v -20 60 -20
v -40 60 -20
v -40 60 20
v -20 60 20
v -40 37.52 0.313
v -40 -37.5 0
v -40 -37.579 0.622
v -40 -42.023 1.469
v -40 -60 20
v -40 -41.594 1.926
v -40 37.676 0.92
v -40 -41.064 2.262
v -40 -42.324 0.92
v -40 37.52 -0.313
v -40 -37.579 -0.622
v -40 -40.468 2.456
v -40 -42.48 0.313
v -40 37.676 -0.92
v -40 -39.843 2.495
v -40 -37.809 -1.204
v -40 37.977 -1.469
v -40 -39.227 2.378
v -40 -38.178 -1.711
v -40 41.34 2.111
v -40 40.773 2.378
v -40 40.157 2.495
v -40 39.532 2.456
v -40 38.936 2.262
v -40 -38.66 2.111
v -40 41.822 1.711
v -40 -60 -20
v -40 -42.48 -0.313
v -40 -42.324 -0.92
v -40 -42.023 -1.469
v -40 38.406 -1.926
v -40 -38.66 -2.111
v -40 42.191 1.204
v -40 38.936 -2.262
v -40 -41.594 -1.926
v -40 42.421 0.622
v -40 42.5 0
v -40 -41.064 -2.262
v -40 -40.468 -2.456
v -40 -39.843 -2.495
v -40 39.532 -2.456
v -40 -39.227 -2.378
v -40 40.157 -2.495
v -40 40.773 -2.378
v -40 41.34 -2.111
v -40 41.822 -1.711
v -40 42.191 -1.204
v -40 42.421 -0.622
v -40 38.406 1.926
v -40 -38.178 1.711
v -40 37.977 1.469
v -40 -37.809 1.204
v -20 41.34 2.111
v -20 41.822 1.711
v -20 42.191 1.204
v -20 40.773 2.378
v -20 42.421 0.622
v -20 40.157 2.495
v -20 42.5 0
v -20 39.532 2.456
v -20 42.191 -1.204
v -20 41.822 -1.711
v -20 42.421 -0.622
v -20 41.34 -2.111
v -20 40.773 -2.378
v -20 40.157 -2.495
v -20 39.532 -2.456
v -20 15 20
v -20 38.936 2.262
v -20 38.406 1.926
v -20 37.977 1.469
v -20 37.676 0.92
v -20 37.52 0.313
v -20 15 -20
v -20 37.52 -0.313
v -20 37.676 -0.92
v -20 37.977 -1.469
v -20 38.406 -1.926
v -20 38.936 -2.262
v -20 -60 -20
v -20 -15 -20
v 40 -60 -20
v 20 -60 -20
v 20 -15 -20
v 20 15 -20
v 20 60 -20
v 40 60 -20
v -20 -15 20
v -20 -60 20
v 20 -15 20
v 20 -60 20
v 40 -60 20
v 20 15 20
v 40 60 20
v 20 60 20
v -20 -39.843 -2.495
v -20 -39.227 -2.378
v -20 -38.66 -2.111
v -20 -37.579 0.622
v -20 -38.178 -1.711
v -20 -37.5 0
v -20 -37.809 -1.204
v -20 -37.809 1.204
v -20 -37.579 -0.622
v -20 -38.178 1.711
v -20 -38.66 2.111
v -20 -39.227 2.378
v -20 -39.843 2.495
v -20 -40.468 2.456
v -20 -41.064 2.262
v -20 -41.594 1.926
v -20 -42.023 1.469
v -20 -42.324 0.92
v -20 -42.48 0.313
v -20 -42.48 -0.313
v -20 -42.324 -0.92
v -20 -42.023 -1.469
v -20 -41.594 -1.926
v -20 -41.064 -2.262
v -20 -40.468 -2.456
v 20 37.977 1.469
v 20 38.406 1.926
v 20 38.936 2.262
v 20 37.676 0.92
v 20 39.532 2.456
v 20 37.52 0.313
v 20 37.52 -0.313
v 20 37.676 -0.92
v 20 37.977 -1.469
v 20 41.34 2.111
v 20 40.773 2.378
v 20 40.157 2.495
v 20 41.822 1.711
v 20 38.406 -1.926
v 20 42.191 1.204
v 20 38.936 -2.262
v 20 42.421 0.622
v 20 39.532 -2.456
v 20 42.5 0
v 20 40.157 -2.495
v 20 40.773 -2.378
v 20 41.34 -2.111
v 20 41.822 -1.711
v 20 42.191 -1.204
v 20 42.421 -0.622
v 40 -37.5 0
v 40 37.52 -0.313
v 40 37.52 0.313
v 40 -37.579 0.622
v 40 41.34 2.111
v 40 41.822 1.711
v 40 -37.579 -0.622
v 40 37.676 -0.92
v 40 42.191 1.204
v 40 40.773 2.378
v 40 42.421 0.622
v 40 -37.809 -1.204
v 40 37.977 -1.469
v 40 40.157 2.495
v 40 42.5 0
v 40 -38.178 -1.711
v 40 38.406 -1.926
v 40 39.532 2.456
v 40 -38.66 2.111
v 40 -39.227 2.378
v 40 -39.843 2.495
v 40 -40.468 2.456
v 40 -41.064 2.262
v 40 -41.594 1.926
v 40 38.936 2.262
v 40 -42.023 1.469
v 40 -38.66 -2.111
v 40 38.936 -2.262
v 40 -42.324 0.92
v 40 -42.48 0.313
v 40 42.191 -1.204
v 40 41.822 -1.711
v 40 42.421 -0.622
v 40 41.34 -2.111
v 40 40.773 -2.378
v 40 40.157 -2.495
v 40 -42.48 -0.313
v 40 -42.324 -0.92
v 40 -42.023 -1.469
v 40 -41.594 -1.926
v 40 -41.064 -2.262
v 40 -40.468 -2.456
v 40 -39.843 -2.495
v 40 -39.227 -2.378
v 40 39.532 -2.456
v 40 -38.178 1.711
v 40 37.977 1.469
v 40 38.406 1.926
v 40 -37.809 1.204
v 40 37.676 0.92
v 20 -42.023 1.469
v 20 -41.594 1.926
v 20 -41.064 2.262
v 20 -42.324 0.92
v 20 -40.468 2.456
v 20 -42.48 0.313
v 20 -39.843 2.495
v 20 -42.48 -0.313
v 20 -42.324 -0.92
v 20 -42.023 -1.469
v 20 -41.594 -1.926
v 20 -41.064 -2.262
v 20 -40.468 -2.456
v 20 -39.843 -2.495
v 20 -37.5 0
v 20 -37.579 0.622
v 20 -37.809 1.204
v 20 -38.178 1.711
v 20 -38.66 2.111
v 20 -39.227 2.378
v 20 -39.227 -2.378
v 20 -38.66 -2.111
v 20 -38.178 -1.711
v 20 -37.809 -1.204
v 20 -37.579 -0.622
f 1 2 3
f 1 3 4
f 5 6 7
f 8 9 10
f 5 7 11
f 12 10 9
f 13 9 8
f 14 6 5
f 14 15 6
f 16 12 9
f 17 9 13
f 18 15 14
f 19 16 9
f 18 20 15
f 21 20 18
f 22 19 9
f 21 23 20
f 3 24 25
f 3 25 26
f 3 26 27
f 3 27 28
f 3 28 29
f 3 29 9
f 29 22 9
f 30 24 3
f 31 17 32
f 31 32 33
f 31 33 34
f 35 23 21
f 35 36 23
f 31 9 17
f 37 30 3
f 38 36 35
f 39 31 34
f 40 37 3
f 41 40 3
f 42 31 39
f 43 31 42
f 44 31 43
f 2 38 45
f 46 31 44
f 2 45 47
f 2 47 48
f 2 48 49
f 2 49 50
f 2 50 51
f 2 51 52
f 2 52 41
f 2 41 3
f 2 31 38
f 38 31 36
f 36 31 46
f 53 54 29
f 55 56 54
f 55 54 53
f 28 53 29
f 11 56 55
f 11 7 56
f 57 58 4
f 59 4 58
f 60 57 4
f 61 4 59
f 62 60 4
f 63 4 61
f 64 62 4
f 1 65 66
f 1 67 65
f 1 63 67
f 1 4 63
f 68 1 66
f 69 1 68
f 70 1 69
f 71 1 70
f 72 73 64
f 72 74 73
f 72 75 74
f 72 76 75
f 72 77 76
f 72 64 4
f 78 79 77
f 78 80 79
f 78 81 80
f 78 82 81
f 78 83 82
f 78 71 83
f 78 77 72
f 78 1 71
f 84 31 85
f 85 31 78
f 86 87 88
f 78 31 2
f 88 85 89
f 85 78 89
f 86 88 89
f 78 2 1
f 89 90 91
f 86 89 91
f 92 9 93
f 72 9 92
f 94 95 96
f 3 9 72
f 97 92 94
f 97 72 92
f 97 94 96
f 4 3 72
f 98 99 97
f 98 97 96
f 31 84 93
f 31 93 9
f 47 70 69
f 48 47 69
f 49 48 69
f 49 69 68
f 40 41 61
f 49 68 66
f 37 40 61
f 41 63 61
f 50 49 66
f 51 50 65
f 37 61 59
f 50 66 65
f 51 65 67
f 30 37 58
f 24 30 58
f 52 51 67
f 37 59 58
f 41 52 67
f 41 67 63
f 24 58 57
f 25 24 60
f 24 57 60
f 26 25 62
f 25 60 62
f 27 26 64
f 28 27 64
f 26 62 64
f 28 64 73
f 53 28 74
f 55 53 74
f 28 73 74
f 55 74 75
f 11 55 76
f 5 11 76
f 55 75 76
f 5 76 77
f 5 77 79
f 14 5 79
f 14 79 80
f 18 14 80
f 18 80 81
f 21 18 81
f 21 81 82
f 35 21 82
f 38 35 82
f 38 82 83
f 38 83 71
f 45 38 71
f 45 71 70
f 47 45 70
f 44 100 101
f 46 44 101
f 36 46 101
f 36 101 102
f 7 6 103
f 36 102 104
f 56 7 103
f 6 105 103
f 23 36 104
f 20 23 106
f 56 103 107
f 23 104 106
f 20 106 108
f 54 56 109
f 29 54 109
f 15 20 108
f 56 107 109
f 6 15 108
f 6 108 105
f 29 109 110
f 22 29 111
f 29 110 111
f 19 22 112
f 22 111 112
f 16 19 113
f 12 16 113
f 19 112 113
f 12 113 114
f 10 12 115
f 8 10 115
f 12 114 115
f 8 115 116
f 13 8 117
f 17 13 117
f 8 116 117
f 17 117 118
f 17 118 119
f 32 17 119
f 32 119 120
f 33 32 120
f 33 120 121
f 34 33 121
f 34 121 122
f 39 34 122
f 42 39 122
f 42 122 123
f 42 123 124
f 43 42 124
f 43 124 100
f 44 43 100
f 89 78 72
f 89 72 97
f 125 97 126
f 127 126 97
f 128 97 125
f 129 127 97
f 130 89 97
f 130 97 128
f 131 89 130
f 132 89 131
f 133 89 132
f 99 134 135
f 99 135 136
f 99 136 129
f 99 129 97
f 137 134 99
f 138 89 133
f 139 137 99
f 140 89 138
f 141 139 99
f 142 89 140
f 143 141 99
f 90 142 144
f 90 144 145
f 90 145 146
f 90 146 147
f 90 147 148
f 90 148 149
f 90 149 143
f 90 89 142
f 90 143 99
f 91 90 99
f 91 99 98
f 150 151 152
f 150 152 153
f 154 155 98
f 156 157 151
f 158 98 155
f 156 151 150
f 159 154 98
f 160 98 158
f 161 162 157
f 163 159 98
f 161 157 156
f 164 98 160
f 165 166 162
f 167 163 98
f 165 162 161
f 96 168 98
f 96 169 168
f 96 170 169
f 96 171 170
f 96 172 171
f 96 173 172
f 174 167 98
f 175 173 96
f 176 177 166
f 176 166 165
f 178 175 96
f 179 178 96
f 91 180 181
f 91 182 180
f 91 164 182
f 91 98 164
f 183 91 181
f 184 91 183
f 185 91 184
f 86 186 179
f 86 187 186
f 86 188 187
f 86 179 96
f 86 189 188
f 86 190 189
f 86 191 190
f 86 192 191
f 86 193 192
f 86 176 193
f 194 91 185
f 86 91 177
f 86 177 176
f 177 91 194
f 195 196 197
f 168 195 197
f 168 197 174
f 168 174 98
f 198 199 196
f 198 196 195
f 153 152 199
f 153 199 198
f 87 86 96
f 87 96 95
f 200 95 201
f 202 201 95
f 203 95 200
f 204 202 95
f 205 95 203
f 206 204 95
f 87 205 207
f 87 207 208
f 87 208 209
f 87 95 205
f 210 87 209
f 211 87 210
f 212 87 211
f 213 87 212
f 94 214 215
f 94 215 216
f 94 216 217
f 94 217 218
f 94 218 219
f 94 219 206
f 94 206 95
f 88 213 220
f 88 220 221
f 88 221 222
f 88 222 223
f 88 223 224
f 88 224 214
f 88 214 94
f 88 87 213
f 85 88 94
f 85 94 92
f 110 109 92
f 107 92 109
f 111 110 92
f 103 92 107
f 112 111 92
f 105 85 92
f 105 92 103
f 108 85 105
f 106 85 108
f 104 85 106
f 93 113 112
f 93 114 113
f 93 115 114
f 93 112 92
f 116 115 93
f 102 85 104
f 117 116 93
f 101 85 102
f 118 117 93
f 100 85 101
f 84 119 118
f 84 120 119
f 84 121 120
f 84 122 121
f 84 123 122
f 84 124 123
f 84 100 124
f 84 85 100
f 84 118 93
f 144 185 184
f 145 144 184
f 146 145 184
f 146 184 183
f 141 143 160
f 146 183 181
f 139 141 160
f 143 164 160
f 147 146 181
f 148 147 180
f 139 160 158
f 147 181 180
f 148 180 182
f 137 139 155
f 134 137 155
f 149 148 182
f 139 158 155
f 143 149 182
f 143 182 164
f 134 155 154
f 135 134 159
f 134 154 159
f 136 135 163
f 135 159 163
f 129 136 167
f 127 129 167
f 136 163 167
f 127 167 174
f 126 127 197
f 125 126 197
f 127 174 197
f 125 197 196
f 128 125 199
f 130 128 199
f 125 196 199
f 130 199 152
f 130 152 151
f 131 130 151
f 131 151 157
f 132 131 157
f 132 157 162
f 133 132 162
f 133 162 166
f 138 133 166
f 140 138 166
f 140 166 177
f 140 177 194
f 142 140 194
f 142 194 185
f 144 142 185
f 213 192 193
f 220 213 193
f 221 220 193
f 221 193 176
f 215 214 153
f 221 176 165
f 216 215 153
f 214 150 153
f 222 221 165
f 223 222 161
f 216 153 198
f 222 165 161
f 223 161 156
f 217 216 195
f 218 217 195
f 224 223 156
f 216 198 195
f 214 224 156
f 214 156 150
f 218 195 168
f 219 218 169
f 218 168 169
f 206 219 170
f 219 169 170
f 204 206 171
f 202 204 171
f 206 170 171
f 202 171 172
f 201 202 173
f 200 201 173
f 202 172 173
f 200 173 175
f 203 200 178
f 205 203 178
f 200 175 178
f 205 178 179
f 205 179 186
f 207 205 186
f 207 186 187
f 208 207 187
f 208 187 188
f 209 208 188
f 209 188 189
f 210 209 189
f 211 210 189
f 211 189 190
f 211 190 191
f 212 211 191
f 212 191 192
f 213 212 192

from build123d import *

# Parameters (mm, degrees)
PAD_DEPTH         = 20
SKETCH001_R       = 2.5
POCKET_DEPTH      = 80.001
POCKET_DEPTH_BACK = -0.001


with BuildPart() as part:
    # Sketch → Pad (new body, symmetric)
    with BuildSketch(Plane.XY):
        Polygon((-40, 60), (-20, 60), (-20, 15), (20, 15), (20, 60), (40, 60), (40, -60), (20, -60), (20, -15), (-20, -15), (-20, -60), (-40, -60), align=None)
    extrude(amount=PAD_DEPTH, both=True)

    # Sketch001 → Pocket (cut, two sides)
    with BuildSketch(Plane.YZ.offset(40)) as pocket_sk:
        with Locations((-40, 0)):
            Circle(SKETCH001_R)
        with Locations((40, 0)):
            Circle(SKETCH001_R)
    extrude(amount=-POCKET_DEPTH, mode=Mode.SUBTRACT)
    extrude(pocket_sk.sketch, amount=-POCKET_DEPTH_BACK, mode=Mode.SUBTRACT)


solid = part.part
